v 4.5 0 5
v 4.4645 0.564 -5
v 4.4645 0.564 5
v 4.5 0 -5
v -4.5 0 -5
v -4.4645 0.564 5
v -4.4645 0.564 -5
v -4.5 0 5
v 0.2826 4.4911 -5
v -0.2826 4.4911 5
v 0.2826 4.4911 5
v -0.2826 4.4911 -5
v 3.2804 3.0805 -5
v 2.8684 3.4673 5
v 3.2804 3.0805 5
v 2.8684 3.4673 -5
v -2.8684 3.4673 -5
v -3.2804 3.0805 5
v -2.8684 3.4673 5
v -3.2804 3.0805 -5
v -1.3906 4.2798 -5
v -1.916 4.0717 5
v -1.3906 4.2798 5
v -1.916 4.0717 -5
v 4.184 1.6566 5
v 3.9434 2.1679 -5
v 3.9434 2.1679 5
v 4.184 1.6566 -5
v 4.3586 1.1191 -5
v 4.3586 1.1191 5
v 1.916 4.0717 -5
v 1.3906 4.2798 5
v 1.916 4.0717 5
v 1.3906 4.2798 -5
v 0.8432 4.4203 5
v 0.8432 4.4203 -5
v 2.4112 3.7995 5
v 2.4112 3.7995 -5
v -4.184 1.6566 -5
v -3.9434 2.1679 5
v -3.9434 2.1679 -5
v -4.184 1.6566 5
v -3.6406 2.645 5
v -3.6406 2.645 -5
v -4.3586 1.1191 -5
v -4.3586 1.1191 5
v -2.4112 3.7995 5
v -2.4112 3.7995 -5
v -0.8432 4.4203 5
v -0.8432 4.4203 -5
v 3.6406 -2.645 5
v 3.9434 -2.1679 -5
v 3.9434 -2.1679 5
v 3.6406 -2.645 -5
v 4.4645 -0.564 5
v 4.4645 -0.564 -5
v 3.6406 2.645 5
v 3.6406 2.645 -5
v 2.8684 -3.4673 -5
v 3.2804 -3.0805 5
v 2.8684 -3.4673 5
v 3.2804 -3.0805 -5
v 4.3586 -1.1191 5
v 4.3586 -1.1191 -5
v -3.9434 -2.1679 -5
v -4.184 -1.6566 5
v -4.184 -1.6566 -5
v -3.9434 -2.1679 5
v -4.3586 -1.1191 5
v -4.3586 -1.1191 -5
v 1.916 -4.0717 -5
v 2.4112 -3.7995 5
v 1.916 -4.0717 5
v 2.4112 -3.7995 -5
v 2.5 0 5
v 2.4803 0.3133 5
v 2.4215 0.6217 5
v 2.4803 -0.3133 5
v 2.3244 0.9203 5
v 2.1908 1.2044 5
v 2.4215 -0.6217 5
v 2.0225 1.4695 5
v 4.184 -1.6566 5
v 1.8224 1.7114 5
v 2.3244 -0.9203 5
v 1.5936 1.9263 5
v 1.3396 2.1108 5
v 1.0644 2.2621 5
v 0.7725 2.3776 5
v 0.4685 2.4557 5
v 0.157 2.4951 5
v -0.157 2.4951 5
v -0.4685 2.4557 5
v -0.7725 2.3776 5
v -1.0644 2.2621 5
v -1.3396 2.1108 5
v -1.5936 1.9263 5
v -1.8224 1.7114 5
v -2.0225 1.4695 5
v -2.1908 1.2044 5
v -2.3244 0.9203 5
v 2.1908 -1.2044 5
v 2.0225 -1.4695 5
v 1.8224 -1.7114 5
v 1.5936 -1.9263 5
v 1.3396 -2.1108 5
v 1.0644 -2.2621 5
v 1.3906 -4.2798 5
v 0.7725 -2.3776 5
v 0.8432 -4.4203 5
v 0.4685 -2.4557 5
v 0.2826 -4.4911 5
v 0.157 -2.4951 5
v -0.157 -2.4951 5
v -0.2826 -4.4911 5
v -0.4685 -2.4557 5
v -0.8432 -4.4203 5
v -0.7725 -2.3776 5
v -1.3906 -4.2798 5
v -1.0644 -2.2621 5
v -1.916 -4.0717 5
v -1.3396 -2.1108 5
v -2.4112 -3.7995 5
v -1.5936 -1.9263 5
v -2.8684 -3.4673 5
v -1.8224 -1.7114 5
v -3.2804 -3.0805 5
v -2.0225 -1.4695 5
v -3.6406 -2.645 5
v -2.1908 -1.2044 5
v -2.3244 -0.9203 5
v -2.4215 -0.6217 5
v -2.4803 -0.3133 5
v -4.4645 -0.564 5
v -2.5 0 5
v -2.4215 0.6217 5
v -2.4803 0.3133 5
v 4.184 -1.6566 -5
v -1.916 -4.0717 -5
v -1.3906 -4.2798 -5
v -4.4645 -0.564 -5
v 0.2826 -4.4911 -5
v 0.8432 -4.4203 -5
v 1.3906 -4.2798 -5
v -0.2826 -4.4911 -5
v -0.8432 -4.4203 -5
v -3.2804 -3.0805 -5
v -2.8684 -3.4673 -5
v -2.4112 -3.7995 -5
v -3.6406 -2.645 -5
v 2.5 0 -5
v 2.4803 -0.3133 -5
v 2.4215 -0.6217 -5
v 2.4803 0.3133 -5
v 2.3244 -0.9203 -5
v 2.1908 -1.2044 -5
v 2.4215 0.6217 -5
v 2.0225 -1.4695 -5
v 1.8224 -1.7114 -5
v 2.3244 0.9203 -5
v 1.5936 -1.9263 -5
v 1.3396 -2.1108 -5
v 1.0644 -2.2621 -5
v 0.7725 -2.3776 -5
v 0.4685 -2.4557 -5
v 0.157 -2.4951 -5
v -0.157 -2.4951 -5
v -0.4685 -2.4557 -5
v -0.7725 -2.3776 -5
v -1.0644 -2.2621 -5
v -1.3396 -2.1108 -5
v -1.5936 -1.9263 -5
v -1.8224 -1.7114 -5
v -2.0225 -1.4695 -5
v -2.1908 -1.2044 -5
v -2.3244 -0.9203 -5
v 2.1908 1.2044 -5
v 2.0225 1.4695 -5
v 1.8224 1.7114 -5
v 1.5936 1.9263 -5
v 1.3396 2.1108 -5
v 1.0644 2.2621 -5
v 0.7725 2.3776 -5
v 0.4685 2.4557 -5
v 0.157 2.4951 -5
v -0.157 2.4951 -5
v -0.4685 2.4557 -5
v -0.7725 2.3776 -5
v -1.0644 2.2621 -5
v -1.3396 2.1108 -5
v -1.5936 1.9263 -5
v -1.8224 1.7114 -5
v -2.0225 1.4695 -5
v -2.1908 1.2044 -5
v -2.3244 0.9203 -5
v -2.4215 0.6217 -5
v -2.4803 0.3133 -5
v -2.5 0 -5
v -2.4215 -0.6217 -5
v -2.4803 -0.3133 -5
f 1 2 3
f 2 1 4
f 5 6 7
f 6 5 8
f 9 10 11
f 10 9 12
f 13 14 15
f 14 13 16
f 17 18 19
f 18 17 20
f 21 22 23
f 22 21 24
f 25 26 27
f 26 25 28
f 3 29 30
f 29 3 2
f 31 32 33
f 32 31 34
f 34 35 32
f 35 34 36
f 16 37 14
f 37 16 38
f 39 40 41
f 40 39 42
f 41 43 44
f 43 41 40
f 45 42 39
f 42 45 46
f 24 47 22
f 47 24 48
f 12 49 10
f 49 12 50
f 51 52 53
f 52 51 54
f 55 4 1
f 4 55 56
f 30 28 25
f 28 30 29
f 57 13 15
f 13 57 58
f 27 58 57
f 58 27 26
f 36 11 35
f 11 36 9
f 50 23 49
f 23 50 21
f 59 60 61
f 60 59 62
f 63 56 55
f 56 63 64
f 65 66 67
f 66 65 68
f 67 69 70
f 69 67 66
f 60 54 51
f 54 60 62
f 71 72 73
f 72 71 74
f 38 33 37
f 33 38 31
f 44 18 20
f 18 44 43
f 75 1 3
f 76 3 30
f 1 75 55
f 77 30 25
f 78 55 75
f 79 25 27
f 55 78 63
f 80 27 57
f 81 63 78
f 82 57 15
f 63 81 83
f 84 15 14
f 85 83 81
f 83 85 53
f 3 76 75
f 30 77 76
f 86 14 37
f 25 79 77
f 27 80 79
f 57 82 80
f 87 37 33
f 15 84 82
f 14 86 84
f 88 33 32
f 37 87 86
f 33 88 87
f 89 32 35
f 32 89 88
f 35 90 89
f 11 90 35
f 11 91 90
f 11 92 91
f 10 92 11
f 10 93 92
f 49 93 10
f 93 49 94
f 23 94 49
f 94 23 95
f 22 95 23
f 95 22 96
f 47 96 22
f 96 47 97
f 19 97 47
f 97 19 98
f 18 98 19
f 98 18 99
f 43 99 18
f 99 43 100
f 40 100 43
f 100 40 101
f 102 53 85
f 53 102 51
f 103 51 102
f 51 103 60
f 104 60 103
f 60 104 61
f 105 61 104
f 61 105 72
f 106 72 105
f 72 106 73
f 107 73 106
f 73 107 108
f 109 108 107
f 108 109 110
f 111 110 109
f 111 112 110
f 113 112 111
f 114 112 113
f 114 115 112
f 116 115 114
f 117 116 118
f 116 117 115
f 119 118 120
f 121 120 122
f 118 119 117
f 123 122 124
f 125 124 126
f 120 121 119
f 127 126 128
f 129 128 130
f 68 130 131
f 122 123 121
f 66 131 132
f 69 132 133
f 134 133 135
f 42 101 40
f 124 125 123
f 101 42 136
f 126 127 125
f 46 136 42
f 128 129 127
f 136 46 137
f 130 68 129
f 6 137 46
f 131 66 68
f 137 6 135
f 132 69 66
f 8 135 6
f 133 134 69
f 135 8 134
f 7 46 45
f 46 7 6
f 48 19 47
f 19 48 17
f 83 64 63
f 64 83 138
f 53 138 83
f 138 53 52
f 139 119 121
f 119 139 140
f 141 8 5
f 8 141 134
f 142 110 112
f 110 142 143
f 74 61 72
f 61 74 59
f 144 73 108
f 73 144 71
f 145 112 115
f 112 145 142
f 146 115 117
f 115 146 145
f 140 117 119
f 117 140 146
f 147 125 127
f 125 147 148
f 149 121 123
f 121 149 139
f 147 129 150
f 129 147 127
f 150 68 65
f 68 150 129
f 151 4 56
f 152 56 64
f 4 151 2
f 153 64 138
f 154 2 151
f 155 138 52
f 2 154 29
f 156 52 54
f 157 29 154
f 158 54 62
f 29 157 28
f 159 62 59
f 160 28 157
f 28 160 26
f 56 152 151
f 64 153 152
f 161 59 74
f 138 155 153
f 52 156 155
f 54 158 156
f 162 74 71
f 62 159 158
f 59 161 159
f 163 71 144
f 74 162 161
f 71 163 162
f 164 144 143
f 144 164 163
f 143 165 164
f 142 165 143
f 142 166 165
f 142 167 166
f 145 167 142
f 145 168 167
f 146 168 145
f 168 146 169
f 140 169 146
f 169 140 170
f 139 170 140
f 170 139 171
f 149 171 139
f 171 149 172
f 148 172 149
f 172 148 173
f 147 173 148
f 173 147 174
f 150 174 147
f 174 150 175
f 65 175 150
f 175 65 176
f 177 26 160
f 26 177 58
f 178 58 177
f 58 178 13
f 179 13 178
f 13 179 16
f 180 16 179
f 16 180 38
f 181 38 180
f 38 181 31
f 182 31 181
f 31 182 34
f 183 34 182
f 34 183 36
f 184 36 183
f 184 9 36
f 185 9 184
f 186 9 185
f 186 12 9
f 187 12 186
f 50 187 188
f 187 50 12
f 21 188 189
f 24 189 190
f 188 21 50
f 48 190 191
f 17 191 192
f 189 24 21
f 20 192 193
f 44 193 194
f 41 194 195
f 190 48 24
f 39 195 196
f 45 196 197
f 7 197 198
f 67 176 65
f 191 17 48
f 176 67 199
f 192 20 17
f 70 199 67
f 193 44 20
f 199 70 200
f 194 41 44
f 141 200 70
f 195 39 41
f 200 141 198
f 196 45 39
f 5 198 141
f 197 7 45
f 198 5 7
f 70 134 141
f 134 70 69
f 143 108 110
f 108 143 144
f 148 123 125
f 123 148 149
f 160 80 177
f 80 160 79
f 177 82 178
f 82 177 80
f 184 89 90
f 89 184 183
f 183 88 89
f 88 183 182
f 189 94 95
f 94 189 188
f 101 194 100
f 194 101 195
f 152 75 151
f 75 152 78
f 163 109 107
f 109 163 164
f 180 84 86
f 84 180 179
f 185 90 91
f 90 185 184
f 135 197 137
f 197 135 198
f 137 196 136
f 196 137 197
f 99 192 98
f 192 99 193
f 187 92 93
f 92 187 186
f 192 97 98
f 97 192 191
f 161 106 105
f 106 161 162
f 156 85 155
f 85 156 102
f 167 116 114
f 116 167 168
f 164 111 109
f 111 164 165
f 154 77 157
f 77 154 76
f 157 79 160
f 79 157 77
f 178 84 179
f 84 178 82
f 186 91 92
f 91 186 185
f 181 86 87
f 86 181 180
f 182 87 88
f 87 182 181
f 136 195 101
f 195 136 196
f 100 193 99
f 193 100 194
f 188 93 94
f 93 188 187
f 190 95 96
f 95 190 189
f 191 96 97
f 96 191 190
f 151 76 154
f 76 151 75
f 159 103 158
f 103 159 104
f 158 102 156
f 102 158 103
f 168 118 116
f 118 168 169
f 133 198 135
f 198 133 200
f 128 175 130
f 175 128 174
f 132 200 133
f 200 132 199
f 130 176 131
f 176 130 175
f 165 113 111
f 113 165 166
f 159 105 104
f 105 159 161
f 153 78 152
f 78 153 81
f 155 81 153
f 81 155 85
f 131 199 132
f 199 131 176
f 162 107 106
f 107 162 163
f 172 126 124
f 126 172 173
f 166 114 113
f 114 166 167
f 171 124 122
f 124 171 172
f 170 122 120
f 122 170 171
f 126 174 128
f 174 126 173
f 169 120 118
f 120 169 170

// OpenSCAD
$fn = 50;


difference() {
	union() {
		translate(v = [0, 0, -5.0000000000]) {
			cylinder(h = 10, r = 4.5000000000);
		}
	}
	union() {
		translate(v = [0, 0, -100.0000000000]) {
			cylinder(h = 200, r = 2.5000000000);
		}
	}
}
